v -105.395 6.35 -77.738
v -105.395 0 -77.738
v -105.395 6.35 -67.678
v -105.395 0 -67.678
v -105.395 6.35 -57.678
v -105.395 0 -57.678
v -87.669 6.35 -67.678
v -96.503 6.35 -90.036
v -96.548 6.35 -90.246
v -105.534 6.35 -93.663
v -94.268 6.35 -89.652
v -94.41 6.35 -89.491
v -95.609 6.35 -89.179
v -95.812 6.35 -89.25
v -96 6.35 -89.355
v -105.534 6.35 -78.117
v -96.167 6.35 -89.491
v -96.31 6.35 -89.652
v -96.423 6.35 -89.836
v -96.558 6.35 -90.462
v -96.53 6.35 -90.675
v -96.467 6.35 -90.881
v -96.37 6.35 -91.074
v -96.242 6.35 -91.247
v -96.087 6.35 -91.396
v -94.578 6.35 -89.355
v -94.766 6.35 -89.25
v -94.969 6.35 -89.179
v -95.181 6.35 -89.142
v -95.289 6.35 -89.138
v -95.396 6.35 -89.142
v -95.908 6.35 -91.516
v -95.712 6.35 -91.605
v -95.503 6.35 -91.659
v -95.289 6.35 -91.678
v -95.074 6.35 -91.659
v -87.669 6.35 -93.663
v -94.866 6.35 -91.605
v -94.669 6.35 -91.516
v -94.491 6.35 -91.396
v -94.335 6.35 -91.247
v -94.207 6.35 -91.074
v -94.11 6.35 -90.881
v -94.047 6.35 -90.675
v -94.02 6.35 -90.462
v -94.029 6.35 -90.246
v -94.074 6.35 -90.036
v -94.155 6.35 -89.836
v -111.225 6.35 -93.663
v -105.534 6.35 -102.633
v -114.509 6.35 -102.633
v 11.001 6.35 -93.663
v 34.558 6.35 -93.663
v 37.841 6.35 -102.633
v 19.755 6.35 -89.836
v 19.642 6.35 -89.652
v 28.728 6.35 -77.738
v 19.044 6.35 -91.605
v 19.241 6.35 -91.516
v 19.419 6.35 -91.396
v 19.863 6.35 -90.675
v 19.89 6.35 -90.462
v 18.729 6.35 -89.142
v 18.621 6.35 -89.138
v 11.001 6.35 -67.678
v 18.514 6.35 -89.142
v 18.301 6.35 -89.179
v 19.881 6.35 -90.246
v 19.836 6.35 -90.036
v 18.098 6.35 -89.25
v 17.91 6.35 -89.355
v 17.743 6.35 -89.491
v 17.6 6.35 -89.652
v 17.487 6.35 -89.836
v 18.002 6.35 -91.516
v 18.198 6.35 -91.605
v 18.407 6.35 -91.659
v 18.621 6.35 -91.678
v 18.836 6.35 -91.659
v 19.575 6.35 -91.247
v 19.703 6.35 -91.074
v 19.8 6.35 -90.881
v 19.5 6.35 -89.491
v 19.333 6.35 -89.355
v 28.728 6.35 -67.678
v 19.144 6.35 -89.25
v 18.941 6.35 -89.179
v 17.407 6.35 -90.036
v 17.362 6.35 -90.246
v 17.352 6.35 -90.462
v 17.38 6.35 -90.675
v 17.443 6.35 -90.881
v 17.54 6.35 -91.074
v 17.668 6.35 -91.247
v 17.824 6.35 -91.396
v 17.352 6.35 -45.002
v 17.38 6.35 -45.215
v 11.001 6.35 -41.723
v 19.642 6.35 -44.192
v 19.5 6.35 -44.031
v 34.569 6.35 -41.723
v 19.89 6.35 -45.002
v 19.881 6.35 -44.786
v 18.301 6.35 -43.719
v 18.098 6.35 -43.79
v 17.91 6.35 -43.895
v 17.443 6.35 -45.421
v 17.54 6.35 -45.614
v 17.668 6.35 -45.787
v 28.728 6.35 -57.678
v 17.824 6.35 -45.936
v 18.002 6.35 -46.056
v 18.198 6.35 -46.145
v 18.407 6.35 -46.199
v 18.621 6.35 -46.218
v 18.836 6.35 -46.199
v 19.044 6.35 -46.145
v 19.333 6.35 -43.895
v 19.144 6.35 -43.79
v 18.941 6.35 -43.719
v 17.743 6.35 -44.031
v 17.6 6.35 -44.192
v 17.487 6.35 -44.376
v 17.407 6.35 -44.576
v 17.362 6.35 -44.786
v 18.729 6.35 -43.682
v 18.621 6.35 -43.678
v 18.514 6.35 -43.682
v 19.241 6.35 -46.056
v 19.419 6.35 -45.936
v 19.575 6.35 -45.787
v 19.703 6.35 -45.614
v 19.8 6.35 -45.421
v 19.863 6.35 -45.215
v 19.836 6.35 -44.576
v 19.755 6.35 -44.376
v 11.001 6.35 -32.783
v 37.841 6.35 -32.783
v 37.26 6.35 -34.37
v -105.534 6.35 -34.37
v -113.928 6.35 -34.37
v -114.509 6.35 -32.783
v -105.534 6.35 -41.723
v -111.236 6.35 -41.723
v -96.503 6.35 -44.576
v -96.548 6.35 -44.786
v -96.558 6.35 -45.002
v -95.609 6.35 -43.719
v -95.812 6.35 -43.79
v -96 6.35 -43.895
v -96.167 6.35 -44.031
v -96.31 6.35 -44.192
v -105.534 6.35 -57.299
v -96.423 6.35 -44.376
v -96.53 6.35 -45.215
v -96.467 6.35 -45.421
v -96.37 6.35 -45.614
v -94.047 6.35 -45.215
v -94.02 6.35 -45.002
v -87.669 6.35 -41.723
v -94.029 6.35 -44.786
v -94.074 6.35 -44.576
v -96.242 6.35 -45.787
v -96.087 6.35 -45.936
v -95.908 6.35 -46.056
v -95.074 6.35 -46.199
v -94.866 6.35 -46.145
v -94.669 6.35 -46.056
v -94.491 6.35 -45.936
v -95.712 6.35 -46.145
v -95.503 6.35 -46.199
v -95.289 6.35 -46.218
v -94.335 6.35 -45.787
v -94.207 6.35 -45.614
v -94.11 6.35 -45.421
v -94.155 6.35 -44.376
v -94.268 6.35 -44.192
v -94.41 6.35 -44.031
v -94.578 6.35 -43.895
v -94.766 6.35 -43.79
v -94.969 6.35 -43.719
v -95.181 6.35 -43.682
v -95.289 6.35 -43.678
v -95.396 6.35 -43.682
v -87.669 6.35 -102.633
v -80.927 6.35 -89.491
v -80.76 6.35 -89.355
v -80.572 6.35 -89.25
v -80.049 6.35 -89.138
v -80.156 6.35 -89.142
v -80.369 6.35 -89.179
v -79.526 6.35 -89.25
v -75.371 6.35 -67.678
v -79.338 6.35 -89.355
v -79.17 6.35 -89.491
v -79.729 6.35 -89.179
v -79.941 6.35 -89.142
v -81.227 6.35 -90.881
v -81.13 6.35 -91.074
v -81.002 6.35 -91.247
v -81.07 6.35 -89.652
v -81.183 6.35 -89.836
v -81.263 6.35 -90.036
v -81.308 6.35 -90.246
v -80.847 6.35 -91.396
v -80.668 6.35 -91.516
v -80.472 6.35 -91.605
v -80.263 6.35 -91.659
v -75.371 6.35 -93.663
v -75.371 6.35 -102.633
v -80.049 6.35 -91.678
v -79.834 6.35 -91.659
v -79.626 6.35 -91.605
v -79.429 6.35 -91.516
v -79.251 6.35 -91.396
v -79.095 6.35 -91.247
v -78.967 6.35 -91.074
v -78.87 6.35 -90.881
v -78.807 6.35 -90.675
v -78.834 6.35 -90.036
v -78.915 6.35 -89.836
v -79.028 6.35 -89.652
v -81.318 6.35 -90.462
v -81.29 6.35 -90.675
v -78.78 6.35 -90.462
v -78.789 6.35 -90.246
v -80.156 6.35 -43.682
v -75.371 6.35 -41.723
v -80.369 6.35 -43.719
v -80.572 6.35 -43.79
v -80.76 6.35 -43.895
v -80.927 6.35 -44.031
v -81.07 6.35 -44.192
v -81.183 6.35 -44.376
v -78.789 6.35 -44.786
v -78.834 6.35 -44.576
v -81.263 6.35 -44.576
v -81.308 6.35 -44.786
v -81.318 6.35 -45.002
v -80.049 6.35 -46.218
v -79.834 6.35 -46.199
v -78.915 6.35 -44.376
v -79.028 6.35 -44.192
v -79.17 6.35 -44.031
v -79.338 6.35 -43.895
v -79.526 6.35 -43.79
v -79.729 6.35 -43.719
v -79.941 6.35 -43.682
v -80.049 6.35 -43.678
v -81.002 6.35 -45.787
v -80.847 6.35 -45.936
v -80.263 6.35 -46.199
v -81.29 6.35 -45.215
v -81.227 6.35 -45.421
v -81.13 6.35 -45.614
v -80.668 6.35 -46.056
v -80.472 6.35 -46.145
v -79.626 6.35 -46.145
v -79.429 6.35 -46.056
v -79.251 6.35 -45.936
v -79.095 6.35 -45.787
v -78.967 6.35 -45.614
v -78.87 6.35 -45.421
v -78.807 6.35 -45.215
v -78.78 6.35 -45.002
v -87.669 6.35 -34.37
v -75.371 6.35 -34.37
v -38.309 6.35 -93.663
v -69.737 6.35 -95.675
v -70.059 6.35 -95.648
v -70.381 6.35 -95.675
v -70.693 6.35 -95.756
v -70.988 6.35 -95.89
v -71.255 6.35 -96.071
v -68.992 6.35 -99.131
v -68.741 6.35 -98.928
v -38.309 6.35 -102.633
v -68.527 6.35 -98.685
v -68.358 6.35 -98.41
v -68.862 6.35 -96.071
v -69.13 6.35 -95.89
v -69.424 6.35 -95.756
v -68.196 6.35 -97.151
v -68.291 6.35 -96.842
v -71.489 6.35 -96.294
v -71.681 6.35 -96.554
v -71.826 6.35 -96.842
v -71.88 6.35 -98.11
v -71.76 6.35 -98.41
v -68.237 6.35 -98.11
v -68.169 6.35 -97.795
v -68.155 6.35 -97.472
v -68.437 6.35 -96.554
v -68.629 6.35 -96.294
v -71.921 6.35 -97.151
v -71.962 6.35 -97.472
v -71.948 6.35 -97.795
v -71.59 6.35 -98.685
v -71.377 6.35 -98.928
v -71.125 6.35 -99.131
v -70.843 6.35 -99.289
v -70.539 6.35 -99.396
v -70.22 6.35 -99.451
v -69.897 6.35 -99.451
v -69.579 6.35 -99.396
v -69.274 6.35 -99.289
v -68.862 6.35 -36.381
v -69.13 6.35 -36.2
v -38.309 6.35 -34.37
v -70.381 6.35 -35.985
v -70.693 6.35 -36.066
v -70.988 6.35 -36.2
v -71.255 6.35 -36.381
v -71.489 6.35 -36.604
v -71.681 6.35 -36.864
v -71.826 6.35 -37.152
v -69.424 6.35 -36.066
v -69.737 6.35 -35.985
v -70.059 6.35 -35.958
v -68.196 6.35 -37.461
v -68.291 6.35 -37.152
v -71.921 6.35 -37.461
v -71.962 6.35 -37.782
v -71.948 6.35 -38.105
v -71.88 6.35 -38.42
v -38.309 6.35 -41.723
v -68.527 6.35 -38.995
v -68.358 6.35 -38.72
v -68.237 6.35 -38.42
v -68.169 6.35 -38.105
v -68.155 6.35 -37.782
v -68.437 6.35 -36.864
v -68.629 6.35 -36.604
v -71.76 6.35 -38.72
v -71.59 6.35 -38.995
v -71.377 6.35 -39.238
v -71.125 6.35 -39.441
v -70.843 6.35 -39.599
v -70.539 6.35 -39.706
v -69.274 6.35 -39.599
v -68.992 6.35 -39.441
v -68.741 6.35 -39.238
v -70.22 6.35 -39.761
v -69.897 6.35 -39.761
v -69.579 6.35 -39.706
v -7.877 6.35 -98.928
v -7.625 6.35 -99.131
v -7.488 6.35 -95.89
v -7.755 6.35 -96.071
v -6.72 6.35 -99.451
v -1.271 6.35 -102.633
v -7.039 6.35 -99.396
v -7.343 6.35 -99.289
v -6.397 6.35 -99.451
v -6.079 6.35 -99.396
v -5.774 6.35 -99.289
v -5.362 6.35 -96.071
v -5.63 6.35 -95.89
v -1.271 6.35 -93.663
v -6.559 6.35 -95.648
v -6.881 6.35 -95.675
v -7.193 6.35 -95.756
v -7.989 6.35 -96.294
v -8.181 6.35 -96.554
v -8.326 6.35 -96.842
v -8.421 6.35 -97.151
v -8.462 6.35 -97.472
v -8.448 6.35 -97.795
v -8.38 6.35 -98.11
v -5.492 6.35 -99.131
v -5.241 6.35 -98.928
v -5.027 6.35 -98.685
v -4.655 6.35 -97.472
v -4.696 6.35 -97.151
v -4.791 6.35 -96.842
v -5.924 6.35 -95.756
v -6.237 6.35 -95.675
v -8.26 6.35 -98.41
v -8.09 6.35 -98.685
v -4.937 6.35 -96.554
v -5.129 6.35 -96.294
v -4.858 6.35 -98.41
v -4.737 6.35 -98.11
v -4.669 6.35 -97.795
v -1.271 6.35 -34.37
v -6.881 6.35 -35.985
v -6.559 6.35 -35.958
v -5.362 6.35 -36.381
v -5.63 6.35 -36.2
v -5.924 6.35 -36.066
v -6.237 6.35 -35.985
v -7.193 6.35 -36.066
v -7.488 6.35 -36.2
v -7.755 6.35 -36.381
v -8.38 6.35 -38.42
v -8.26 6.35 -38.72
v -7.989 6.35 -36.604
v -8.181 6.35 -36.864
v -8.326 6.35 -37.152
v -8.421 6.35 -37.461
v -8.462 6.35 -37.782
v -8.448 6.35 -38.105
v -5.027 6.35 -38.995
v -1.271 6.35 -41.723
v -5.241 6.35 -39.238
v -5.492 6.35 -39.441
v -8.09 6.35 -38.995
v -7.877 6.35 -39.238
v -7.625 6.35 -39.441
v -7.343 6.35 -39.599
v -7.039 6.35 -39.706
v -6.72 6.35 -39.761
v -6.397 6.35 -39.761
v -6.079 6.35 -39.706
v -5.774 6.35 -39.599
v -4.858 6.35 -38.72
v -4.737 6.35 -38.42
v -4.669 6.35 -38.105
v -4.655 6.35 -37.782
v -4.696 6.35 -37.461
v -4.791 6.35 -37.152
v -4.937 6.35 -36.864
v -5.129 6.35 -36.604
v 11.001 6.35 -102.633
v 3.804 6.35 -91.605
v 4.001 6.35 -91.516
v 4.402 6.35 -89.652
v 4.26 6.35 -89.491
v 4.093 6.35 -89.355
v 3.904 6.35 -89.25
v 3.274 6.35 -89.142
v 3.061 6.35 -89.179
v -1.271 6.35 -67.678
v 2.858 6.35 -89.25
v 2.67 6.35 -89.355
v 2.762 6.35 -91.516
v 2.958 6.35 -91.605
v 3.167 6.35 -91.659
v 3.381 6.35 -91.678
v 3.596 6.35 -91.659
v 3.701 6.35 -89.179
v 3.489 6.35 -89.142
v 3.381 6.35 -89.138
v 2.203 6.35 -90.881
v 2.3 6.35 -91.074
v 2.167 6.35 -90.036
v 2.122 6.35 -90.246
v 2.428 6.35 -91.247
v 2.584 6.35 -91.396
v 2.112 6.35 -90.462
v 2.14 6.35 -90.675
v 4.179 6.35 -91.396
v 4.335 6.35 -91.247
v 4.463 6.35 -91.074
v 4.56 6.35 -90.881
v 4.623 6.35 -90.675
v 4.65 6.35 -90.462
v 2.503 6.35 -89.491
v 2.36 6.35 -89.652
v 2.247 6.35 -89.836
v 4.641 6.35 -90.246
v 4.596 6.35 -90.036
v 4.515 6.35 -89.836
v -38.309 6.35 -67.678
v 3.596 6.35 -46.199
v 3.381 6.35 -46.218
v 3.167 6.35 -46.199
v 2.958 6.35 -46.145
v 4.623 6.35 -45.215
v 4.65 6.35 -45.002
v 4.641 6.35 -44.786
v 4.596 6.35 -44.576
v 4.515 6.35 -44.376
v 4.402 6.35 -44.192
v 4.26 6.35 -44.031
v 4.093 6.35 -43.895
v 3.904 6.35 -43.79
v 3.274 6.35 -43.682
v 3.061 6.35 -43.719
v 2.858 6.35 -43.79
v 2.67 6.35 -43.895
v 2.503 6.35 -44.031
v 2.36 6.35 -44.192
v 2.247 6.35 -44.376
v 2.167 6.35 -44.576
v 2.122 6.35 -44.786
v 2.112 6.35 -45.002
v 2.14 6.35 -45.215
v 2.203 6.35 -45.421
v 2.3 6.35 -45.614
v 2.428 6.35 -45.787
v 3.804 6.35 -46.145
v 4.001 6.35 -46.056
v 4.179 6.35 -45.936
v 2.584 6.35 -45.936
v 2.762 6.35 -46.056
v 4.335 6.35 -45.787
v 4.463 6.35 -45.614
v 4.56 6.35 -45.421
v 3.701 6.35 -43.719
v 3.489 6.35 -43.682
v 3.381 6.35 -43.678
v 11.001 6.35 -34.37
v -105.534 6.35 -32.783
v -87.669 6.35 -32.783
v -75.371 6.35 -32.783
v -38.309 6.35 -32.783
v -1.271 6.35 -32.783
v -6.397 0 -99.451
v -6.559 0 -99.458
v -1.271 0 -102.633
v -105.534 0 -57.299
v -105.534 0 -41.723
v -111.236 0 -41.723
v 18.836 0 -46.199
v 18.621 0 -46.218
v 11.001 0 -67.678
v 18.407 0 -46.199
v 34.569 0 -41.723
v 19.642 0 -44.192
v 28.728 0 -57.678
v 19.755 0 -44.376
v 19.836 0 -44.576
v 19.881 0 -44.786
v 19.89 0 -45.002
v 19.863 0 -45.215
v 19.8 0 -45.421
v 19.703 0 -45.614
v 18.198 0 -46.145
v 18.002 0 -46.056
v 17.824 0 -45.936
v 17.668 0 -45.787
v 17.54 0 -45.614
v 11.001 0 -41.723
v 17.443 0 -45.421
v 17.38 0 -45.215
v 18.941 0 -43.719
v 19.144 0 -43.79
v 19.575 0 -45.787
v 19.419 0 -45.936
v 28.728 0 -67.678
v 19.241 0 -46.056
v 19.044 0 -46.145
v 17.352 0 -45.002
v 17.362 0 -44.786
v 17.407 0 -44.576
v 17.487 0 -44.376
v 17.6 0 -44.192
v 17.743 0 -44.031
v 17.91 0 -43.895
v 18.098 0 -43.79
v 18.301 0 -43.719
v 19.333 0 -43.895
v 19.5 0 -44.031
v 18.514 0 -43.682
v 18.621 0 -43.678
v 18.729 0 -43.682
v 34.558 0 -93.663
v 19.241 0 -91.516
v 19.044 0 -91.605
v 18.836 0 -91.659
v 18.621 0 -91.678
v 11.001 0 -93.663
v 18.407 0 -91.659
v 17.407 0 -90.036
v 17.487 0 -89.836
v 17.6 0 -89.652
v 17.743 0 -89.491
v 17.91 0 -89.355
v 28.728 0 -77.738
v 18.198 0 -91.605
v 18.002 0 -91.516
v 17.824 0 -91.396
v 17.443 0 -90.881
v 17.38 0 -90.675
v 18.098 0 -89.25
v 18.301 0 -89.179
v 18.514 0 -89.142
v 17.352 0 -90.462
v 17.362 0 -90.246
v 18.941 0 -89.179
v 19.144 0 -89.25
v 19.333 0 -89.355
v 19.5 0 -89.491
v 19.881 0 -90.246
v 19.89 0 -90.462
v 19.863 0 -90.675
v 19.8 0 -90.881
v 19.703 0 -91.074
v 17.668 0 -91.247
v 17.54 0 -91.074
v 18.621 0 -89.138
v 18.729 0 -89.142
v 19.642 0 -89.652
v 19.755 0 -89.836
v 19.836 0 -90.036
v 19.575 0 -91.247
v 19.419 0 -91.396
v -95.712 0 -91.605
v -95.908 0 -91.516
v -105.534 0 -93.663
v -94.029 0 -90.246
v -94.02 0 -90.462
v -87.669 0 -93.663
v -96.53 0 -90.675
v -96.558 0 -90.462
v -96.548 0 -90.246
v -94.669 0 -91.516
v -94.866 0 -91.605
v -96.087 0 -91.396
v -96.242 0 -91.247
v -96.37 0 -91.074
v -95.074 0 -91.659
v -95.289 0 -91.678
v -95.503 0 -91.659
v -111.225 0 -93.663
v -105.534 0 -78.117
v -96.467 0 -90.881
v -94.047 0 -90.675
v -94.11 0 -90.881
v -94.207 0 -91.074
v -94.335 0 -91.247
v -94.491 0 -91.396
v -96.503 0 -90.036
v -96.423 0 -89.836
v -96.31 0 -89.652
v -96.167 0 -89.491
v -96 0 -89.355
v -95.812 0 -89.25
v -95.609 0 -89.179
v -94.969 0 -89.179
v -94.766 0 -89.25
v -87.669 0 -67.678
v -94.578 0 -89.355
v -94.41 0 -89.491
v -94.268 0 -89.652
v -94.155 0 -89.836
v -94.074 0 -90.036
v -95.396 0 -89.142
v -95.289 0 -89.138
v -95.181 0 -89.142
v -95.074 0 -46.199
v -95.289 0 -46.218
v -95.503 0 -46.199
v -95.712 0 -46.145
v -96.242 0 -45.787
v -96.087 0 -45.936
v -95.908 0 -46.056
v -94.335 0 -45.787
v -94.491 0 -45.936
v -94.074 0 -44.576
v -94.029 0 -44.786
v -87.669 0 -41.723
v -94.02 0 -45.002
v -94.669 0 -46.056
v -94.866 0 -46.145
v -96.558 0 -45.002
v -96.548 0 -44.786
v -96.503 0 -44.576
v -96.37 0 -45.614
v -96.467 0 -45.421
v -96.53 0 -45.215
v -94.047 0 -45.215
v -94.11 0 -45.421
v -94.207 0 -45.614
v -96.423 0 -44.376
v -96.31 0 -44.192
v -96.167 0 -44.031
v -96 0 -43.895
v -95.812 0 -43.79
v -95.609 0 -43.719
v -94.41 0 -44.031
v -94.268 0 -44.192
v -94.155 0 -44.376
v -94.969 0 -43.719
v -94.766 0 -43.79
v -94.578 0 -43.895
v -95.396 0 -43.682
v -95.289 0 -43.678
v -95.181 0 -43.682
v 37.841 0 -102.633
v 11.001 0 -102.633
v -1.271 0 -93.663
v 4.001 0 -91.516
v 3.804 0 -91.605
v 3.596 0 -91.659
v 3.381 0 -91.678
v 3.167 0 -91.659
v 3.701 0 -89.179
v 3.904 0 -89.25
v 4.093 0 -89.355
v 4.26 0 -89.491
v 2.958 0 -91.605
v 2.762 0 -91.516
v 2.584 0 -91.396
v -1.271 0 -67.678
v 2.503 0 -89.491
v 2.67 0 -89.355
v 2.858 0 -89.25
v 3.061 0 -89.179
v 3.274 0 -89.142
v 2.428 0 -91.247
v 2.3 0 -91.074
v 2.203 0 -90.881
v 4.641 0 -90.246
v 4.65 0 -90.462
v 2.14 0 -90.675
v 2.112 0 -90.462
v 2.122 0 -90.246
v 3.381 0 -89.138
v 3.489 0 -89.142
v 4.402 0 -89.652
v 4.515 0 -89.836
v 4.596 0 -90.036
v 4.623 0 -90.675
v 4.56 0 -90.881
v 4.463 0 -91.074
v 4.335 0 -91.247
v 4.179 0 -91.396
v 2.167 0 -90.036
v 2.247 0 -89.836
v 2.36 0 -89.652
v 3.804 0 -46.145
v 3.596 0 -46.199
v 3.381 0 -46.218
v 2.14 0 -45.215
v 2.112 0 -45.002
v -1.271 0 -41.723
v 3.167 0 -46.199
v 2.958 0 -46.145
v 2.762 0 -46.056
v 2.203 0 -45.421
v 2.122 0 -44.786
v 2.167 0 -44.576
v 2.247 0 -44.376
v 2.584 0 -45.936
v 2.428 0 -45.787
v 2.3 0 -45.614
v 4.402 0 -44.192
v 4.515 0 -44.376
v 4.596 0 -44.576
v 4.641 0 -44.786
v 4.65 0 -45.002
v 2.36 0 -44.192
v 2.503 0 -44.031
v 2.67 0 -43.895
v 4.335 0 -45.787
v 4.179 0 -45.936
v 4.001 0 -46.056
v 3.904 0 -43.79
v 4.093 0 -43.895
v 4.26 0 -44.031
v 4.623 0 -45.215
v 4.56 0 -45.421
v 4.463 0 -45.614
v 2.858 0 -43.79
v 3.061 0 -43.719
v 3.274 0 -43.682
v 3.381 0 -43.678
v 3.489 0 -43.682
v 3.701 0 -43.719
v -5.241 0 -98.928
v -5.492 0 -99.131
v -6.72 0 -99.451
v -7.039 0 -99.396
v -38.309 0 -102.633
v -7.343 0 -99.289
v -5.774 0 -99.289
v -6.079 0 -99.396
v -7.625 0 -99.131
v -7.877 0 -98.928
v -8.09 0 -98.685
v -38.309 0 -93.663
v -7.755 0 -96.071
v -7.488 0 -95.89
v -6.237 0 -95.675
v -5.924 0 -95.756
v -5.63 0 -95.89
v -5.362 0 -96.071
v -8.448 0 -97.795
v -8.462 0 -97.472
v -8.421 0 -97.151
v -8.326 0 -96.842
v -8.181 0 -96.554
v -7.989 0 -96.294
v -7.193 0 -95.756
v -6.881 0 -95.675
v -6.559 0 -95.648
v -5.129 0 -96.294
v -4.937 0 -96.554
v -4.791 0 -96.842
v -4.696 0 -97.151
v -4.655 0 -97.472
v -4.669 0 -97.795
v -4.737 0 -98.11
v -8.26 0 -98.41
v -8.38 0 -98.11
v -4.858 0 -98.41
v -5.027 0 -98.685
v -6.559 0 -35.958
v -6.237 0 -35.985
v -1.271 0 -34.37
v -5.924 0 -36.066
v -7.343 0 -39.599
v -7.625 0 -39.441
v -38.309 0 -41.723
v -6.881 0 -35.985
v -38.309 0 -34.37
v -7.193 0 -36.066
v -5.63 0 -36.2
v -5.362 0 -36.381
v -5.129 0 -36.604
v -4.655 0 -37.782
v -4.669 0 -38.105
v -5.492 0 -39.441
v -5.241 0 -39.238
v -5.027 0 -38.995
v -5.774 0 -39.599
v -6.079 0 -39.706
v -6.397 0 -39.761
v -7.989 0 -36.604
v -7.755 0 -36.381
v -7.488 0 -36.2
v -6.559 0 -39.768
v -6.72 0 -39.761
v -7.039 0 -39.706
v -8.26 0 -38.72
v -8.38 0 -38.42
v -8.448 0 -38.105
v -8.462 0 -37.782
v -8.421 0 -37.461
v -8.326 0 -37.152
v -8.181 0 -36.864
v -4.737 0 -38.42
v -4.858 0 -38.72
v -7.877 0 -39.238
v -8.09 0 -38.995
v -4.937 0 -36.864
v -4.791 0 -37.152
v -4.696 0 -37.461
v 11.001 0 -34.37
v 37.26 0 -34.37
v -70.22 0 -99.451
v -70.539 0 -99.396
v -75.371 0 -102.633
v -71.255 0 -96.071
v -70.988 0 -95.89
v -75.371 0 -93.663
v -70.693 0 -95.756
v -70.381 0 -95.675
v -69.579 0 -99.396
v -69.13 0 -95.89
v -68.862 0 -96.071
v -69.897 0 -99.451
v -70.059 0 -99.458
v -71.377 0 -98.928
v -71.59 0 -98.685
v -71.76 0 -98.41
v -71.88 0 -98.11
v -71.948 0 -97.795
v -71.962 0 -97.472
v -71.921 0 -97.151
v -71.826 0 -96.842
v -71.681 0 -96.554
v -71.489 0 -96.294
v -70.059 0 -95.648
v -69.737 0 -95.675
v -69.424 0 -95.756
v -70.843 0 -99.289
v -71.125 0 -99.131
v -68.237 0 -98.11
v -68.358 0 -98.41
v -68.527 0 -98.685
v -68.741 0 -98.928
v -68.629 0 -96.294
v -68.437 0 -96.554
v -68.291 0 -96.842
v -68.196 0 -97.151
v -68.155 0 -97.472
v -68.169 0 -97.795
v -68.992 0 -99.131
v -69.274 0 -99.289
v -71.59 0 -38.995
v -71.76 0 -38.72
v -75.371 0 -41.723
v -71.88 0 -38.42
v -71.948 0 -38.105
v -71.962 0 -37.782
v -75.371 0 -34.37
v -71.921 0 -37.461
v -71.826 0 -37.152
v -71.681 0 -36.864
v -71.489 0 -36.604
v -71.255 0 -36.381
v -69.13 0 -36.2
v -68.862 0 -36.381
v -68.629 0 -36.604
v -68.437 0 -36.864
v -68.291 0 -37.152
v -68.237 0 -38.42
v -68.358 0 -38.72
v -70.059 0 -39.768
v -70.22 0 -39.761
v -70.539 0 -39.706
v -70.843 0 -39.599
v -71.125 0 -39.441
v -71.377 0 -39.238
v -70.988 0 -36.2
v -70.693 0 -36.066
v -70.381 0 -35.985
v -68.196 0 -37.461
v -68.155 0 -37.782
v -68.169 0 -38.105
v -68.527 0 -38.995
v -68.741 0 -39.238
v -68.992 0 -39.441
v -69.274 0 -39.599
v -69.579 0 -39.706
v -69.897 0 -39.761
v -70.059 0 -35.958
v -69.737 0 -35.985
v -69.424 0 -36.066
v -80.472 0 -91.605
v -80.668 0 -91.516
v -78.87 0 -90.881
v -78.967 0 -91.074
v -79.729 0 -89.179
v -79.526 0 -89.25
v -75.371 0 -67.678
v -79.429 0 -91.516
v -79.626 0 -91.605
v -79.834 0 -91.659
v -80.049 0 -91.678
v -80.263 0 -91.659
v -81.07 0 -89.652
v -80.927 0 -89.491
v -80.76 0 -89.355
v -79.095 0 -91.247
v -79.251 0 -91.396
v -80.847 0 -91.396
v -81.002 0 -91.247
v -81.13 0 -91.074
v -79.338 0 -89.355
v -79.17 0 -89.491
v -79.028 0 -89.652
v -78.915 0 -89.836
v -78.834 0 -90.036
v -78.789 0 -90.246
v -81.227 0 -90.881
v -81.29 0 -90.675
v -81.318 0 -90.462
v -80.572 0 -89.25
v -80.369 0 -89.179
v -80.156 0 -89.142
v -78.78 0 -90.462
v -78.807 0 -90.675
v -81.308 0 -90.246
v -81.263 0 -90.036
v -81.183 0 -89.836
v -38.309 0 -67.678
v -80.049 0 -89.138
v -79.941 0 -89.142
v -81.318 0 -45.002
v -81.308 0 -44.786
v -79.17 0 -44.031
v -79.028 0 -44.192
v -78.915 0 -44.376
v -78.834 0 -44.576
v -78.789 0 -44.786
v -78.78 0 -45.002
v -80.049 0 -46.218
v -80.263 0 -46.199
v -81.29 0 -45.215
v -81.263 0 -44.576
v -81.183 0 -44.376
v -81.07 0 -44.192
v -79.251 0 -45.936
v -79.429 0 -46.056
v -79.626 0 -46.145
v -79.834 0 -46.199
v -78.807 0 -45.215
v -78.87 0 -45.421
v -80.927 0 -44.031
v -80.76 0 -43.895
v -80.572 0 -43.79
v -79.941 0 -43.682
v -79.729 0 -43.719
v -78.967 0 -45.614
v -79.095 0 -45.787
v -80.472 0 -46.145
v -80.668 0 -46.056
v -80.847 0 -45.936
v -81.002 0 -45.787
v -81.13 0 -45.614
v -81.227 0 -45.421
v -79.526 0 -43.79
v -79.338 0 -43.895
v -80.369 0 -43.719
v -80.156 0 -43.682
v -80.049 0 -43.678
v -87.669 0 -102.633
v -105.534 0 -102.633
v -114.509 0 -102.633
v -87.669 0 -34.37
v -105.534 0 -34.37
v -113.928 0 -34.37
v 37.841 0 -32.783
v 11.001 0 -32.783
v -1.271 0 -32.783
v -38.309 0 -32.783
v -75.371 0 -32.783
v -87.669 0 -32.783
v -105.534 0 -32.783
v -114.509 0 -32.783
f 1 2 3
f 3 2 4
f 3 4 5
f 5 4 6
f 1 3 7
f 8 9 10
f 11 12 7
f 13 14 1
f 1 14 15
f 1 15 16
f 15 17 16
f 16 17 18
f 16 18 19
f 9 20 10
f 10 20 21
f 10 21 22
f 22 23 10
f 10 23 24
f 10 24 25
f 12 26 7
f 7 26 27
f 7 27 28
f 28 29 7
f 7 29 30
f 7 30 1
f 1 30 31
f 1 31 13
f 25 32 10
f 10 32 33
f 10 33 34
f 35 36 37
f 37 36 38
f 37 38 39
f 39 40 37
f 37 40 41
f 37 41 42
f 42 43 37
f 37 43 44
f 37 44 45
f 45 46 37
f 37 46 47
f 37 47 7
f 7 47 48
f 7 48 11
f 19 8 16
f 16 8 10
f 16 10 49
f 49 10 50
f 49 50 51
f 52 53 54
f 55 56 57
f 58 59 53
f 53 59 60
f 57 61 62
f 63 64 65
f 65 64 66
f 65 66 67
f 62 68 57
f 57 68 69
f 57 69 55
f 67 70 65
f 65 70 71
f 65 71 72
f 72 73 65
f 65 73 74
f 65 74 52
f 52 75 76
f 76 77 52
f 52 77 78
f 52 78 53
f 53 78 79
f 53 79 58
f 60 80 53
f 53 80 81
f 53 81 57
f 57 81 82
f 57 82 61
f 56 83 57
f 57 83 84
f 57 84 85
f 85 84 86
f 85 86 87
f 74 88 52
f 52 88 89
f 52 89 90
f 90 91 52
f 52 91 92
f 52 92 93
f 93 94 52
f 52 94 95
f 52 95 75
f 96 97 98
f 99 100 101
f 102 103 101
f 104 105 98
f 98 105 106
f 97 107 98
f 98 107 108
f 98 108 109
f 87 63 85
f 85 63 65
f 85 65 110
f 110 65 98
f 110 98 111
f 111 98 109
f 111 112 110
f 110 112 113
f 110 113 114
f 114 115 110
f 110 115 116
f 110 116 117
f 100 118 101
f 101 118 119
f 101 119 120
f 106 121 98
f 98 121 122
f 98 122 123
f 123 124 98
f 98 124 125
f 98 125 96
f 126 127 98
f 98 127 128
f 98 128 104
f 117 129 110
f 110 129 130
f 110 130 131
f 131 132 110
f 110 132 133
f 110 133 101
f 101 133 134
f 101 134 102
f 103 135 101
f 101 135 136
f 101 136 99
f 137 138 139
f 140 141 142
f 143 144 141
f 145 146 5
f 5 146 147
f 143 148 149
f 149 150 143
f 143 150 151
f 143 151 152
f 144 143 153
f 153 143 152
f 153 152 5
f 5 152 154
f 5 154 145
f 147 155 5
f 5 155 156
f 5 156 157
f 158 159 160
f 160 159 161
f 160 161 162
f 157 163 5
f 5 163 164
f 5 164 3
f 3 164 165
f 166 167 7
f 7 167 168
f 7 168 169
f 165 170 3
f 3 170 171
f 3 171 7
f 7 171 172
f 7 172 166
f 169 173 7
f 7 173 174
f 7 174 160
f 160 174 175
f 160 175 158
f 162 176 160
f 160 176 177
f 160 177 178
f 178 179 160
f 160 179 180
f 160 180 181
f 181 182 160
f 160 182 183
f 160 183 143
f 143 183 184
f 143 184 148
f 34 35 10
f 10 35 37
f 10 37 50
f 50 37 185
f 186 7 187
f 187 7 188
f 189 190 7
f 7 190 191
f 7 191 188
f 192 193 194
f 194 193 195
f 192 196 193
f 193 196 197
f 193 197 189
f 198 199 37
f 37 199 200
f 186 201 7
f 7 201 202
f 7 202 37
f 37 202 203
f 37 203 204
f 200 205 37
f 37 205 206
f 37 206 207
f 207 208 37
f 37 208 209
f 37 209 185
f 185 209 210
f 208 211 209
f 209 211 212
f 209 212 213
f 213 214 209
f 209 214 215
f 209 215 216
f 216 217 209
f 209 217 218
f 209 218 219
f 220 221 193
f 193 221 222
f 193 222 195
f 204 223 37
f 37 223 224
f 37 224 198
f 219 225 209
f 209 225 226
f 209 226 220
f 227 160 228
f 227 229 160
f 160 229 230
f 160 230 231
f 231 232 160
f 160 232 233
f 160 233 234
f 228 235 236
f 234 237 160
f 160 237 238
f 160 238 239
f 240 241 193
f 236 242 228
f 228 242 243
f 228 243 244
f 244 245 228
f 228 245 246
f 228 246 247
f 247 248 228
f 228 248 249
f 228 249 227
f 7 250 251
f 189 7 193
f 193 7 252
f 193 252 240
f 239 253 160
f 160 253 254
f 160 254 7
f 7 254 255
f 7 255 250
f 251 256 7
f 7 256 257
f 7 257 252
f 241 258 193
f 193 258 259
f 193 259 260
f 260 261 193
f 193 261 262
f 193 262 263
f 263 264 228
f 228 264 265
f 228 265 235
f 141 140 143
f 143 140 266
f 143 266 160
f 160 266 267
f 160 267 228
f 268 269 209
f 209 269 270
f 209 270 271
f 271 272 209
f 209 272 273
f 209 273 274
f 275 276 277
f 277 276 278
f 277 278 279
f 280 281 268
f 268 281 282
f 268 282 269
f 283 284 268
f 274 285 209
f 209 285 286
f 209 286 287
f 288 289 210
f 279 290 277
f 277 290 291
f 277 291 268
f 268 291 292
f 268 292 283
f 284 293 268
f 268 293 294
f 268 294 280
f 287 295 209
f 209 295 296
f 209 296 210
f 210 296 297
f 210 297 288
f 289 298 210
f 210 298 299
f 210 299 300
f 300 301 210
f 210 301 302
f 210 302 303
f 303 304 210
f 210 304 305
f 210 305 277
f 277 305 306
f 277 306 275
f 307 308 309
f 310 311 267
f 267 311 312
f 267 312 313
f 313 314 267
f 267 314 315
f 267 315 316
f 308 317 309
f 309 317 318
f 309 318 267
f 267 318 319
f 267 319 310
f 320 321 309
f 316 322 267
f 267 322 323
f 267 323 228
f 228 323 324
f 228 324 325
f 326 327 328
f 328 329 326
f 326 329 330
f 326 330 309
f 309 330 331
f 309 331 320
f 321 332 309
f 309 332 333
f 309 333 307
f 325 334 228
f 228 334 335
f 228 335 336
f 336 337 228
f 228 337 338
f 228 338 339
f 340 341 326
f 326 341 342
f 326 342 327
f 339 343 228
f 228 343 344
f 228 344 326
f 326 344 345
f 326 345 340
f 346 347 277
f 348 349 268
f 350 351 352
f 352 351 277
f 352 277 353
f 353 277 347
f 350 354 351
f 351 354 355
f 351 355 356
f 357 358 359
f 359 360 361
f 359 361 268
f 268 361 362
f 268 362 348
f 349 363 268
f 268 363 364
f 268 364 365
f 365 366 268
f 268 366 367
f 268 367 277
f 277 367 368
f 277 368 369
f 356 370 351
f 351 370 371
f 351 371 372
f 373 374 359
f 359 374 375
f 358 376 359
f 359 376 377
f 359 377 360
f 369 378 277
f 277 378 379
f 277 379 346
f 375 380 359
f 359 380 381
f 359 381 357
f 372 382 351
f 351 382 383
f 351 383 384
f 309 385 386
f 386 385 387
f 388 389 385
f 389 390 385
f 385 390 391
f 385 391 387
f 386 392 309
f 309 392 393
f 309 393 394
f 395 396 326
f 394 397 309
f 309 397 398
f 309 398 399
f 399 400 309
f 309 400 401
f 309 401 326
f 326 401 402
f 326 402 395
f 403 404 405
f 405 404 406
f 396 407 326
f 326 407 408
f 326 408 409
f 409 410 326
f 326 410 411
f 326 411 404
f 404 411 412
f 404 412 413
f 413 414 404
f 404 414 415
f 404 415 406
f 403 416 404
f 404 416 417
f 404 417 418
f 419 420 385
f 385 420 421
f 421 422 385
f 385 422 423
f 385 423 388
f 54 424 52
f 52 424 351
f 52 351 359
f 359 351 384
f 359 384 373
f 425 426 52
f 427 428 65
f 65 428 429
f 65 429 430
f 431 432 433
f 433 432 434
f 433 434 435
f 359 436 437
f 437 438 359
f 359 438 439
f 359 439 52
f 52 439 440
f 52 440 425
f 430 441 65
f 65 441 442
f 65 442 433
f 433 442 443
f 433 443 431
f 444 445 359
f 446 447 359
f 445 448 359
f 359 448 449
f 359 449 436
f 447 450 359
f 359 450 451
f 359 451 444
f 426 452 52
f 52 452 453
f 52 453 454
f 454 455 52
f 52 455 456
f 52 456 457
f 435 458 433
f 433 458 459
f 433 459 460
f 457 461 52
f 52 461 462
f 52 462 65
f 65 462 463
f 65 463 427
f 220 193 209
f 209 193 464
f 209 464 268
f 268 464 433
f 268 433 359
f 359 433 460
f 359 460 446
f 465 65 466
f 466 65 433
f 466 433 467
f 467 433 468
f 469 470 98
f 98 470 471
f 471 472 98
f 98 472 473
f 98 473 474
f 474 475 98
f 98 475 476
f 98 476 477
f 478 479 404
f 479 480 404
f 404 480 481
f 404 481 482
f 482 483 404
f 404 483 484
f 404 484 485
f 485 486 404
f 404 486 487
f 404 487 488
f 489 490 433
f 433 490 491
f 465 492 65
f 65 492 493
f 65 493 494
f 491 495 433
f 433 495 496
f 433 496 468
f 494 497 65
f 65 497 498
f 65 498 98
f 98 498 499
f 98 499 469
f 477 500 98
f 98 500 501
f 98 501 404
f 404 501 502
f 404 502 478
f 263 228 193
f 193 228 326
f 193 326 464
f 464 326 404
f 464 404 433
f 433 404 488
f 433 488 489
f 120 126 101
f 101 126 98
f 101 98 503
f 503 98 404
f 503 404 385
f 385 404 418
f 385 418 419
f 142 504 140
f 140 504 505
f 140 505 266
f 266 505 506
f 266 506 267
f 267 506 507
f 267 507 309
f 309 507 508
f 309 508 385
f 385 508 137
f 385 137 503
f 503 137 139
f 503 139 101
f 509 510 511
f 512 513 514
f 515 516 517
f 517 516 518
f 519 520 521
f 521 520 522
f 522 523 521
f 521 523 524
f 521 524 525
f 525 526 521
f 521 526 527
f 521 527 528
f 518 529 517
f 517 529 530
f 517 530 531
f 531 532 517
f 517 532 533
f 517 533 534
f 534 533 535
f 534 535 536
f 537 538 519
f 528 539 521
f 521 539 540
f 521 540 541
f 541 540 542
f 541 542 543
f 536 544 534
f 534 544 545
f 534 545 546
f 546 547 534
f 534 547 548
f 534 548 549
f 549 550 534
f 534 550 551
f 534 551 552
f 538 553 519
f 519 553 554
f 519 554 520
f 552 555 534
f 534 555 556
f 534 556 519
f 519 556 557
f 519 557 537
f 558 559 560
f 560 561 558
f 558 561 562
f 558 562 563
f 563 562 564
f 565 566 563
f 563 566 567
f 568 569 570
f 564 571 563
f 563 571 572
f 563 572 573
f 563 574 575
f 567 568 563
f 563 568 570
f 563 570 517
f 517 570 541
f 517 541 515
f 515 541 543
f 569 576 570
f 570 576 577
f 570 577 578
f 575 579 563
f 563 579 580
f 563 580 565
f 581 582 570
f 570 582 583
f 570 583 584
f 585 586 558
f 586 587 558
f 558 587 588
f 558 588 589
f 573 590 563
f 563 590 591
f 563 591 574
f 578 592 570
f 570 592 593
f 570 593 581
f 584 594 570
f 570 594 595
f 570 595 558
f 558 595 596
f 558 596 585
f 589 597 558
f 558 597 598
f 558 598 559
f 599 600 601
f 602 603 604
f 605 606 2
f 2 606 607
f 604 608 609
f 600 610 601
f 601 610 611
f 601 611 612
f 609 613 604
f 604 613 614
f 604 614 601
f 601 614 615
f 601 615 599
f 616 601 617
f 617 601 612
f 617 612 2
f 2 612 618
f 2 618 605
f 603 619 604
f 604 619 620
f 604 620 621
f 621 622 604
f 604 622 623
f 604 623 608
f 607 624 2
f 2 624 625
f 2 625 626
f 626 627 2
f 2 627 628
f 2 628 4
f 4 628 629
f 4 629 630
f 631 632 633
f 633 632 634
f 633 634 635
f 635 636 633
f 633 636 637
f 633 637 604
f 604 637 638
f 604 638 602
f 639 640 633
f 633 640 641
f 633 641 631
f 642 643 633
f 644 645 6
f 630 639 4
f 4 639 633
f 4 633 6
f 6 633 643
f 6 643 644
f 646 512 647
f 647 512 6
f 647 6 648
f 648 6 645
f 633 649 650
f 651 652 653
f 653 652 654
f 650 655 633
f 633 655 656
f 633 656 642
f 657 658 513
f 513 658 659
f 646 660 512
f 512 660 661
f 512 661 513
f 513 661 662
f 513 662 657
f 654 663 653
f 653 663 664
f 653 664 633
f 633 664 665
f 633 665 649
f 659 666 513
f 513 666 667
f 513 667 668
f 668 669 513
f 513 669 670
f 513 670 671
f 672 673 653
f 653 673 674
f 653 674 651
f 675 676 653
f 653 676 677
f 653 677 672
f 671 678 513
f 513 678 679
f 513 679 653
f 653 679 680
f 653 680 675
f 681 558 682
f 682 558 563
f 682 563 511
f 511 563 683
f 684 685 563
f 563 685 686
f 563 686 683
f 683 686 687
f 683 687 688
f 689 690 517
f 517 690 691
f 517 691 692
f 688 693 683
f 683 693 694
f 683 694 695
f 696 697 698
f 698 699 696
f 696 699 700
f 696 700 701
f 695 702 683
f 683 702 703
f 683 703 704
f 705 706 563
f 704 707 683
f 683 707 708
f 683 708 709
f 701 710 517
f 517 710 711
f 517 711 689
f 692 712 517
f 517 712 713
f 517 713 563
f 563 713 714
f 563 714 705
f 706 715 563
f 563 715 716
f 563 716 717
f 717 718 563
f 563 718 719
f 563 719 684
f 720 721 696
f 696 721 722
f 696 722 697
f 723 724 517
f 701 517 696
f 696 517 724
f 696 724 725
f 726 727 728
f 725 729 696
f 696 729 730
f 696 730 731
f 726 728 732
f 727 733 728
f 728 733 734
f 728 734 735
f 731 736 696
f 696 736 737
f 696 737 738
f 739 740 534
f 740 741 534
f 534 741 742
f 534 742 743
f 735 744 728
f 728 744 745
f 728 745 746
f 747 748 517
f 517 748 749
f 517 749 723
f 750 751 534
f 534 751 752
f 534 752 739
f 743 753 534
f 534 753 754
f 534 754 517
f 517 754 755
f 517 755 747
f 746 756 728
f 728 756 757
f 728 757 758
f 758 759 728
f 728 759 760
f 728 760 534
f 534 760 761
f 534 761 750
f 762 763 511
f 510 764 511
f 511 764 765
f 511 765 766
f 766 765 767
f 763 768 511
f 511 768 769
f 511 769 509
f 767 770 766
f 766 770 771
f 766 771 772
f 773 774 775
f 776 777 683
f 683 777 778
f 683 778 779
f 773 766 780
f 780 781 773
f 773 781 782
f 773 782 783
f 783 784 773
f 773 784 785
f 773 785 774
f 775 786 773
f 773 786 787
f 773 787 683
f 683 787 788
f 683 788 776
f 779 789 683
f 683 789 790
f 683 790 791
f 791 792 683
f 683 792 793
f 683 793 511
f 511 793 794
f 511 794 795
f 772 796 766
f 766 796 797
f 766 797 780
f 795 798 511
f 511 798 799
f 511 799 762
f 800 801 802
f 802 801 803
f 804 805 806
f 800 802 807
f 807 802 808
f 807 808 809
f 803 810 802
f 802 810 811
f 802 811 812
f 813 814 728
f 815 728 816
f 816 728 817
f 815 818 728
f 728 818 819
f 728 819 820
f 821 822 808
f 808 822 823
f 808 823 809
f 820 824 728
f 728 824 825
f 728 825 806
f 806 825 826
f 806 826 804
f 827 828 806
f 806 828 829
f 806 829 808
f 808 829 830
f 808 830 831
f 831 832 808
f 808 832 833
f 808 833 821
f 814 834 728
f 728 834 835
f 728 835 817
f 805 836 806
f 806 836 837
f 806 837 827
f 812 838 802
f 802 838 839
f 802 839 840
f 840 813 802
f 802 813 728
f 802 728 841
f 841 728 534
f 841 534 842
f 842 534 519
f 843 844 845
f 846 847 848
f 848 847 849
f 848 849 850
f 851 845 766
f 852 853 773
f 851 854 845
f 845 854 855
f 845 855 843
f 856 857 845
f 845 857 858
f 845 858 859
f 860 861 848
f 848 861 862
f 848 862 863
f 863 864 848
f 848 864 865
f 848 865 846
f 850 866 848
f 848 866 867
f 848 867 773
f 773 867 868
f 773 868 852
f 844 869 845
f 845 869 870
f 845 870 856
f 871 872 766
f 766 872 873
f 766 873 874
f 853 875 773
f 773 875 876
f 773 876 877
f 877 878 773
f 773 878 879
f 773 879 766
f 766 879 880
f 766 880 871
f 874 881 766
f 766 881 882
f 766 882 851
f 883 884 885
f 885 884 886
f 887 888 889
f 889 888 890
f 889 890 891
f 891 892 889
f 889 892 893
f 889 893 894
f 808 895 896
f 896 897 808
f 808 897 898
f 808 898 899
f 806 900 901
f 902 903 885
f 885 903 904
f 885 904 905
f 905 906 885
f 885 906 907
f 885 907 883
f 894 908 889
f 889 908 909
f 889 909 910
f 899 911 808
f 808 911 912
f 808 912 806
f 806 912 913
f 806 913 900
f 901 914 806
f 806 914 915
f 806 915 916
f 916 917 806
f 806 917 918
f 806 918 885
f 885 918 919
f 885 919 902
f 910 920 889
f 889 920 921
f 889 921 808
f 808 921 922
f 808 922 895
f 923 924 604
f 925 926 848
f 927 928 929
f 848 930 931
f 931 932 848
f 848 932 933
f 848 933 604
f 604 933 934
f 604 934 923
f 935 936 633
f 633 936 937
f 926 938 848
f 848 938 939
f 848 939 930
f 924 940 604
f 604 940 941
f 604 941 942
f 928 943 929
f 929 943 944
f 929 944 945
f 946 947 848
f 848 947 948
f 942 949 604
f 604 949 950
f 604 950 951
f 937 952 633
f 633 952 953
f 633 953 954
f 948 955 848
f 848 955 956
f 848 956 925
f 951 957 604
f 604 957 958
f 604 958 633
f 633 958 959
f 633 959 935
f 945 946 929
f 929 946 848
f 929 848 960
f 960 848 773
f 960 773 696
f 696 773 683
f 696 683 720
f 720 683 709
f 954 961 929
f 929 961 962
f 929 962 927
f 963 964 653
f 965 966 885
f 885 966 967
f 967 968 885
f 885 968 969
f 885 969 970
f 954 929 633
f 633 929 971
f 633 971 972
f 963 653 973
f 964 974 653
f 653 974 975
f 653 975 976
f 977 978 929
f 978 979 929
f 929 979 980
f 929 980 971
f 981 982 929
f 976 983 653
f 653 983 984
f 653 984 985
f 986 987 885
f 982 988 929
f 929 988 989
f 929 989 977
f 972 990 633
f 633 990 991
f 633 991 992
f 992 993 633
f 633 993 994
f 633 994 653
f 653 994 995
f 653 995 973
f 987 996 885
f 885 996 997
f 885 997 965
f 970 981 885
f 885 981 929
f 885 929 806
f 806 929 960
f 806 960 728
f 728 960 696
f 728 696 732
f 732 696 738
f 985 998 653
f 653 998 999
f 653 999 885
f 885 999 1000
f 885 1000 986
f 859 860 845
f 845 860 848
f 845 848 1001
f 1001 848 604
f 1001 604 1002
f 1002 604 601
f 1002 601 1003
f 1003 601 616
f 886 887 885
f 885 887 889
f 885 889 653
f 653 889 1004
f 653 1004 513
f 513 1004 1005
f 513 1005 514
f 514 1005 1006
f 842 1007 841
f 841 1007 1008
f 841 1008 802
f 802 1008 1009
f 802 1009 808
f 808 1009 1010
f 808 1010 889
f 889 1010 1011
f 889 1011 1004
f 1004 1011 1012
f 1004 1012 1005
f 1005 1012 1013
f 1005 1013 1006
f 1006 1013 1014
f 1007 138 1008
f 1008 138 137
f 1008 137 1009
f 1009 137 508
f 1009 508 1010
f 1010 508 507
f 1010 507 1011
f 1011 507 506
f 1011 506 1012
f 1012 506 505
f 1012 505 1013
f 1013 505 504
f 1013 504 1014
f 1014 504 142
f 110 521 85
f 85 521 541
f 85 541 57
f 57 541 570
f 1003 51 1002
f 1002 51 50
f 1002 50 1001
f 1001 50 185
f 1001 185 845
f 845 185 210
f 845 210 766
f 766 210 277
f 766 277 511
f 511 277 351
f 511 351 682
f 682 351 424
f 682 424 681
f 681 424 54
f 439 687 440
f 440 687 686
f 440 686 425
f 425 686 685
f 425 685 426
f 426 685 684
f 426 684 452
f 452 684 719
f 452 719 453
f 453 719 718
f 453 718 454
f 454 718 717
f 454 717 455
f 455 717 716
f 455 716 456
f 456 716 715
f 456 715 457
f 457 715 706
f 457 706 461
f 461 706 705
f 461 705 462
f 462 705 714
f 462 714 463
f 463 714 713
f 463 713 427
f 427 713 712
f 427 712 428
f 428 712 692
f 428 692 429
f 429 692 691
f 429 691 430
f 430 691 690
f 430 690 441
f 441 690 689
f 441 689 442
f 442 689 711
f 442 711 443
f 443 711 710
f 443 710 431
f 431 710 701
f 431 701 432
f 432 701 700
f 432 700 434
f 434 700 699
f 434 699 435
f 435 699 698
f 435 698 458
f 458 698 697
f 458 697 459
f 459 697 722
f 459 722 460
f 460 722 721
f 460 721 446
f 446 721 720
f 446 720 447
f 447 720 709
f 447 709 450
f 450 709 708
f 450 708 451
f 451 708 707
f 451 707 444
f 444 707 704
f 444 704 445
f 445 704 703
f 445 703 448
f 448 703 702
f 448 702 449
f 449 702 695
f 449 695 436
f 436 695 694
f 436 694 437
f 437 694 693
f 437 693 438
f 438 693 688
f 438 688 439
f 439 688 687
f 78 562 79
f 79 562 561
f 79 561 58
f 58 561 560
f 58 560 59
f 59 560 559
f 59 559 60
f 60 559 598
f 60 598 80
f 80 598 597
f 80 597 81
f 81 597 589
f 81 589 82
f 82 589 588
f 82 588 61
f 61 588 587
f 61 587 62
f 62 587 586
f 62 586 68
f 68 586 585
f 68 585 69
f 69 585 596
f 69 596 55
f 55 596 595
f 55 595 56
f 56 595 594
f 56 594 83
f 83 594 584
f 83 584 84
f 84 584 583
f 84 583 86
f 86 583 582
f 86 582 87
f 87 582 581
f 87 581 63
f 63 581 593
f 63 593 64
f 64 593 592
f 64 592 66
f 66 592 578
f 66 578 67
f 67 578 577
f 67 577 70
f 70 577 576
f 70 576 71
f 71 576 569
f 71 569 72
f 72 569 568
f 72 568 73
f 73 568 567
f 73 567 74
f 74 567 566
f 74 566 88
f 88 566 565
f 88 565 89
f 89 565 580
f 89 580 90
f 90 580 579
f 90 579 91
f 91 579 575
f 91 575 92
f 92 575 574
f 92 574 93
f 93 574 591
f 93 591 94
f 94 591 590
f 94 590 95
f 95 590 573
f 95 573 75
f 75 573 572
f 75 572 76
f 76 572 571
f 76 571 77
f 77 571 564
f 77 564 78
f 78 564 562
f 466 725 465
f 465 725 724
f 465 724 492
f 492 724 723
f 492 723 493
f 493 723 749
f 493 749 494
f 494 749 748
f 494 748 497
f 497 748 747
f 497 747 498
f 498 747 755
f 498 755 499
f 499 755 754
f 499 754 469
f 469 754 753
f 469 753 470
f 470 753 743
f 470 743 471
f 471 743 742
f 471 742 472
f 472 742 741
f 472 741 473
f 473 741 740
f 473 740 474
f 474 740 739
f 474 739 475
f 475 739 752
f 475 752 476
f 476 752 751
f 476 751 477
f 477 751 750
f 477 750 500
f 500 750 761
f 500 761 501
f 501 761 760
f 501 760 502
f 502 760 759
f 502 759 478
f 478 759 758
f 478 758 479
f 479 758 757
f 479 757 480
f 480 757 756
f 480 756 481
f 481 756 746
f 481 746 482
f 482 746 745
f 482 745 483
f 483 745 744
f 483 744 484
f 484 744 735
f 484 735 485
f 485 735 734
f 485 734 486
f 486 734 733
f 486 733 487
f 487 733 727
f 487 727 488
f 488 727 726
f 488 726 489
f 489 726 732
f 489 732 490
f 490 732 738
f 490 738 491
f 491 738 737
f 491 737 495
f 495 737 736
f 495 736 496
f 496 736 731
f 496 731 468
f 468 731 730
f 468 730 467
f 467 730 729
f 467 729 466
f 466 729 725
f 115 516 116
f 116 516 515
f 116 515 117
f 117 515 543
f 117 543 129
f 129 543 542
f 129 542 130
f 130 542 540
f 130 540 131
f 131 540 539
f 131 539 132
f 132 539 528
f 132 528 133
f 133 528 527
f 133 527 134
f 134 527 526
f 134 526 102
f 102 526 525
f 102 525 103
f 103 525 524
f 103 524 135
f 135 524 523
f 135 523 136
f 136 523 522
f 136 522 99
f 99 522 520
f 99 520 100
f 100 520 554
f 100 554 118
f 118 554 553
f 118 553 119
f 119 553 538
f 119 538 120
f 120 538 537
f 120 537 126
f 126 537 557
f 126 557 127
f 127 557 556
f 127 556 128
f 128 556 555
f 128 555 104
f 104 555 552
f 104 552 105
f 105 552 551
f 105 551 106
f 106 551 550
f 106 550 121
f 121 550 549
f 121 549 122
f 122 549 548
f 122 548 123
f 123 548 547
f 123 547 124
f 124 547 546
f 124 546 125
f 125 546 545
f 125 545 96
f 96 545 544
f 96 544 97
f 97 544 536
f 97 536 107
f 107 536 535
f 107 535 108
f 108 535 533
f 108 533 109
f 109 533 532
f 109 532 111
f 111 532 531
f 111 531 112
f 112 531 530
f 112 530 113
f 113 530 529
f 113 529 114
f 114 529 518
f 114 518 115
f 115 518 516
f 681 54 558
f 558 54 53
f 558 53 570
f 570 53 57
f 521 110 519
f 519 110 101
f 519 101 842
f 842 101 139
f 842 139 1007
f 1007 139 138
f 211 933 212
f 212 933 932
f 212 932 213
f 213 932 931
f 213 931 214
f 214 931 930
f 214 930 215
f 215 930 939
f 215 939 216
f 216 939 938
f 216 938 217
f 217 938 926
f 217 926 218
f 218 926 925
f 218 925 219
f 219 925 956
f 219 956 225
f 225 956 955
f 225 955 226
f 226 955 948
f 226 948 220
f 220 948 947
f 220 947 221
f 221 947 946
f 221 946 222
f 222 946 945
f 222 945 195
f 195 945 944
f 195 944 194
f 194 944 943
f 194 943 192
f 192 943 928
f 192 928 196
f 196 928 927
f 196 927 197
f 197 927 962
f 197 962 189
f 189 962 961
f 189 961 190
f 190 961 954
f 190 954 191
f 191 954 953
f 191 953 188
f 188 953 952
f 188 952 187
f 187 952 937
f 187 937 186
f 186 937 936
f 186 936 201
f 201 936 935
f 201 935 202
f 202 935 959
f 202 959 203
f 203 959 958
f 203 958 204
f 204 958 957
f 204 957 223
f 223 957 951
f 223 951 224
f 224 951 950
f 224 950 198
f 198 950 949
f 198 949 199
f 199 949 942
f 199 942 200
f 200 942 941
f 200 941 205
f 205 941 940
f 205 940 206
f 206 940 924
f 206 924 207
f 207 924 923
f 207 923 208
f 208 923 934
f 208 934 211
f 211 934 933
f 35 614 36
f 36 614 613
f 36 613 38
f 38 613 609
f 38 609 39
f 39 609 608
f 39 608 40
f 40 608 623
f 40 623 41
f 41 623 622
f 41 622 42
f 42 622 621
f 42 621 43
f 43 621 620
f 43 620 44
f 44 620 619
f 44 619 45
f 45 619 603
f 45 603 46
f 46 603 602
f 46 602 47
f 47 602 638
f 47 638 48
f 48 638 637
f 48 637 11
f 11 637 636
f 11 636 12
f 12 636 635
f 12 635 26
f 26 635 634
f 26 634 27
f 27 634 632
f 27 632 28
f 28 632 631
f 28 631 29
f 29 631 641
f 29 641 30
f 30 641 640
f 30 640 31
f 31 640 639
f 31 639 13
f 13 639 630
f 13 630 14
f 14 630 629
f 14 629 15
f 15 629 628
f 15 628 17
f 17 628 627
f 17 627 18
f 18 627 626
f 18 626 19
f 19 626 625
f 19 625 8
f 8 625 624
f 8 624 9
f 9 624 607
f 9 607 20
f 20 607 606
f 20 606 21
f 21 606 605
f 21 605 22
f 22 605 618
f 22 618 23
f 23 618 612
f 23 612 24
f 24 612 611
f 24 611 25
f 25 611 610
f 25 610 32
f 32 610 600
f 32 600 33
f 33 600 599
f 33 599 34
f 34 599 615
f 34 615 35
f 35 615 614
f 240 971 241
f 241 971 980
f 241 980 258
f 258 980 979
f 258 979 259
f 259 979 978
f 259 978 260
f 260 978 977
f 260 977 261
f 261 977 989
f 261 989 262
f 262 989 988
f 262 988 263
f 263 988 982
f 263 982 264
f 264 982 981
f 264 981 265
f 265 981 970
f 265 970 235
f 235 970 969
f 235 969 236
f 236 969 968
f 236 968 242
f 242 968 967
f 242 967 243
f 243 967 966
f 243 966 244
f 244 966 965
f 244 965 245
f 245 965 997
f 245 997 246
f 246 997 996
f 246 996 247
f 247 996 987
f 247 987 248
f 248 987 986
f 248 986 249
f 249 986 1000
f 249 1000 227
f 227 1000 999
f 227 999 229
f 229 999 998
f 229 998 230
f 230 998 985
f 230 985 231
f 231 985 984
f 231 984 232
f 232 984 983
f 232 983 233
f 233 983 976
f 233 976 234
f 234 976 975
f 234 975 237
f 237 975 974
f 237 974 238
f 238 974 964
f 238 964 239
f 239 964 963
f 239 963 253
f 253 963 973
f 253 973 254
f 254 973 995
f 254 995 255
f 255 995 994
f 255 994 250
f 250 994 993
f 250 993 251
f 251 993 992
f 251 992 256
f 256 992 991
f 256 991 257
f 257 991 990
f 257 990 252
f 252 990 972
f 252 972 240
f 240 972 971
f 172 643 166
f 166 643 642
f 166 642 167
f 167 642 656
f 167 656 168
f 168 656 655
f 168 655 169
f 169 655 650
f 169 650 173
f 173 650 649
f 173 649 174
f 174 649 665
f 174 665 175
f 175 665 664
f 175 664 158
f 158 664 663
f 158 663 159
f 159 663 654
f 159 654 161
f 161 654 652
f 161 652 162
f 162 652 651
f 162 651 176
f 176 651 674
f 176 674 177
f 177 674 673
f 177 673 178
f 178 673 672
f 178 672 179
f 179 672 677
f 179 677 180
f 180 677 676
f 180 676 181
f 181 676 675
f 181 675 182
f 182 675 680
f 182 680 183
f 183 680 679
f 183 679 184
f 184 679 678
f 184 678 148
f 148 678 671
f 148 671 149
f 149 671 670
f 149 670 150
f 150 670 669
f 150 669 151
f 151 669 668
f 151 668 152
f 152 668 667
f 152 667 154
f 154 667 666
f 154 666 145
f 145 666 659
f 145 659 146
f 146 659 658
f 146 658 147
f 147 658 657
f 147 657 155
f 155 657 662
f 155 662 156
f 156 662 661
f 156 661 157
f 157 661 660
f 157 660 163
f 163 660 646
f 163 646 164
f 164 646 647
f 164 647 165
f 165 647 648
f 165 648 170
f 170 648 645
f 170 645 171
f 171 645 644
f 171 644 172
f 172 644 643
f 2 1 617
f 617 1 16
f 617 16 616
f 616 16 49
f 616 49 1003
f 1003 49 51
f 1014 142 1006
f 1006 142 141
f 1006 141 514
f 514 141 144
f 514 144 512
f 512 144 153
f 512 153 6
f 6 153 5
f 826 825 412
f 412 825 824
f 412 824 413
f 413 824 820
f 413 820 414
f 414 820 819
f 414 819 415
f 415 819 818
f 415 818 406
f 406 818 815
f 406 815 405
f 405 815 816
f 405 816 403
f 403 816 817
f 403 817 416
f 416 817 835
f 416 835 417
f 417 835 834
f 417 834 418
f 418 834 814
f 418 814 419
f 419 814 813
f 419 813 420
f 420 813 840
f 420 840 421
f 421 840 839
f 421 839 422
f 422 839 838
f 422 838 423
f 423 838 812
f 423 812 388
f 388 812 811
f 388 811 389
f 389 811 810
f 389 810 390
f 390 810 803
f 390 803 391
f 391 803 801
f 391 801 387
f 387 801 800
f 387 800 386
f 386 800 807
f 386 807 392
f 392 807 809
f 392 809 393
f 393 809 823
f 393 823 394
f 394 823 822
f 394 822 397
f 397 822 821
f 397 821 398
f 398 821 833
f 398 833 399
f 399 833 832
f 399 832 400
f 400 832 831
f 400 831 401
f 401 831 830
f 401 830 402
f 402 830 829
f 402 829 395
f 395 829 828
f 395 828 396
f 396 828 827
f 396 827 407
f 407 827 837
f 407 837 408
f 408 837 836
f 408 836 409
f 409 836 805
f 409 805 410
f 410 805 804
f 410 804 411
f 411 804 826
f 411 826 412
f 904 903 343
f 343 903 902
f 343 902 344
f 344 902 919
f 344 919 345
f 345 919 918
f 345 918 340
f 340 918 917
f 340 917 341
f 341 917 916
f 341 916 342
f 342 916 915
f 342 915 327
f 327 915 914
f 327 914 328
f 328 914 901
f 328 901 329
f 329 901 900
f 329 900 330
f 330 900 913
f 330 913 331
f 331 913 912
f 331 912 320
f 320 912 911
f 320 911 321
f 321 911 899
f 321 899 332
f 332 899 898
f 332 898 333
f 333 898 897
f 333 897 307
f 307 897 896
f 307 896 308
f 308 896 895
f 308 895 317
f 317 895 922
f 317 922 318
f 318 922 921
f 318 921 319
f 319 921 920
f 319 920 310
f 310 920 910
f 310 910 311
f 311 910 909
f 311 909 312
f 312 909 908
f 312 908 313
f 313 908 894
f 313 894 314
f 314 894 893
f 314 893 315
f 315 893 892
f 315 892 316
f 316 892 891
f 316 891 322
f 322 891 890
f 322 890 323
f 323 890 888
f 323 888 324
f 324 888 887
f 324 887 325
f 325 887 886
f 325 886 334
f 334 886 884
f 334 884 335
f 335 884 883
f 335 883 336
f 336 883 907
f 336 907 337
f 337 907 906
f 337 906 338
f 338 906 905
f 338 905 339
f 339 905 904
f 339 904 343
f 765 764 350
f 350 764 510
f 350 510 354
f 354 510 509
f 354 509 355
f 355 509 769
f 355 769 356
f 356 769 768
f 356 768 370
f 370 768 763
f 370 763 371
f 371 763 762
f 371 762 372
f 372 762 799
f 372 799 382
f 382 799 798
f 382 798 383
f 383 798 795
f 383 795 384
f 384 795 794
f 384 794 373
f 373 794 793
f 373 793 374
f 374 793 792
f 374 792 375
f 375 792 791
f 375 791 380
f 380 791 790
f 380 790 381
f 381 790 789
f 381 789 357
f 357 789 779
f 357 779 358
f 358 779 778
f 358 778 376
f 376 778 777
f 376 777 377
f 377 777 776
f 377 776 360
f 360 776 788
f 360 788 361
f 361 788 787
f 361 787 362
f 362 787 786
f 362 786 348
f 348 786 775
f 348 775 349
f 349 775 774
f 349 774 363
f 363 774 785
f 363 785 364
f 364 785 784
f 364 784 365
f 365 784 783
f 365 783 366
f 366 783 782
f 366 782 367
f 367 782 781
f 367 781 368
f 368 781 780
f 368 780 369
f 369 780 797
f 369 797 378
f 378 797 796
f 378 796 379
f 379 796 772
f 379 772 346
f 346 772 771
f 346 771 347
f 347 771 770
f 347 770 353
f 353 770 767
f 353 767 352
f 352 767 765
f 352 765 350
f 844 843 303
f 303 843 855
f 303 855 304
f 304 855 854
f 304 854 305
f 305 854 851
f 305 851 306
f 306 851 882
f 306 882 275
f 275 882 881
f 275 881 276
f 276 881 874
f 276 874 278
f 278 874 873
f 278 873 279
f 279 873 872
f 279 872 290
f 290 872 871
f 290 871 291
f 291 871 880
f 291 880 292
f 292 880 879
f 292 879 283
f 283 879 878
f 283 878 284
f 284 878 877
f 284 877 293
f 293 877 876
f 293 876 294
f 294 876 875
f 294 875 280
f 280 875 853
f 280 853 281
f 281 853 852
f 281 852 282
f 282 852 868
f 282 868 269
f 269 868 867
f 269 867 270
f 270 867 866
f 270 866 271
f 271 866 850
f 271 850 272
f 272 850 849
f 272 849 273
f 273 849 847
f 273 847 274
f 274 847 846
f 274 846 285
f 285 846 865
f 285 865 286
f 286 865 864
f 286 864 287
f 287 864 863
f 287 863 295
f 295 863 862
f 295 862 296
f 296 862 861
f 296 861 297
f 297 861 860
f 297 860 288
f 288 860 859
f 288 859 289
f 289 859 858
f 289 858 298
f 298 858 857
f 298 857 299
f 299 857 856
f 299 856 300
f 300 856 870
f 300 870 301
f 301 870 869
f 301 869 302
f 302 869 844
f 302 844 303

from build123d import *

# Parameters (mm, degrees)
SKETCH1_W           = 67.061286962
SKETCH1_H           = 69.85
SKETCH1_R           = 1.27
BOSS_EXTRUDE1_DEPTH = 6.35
SKETCH2_W           = 20.976278342
SKETCH2_H           = 20.060000012
BOSS_EXTRUDE2_DEPTH = 12.7
BOSS_EXTRUDE3_DEPTH = 6.35
SKETCH4_W           = 170.998259203
SKETCH4_H           = 17.997071231
CUT_EXTRUDE1_DEPTH  = 70.85
SKETCH8_R           = 1.905
CUT_EXTRUDE3_DEPTH  = 13.716


with BuildPart() as part:
    # Sketch1 → Boss-Extrude1 (new body)
    with BuildSketch(Plane(origin=(0, 0, 0), x_dir=(1, 0, 0), z_dir=(0, 1, 0))):
        with Locations((-4.803022, 67.707661351)):
            Rectangle(SKETCH1_W, SKETCH1_H)
        with Locations((3.381343157, 90.407661351)):
            Circle(SKETCH1_R, mode=Mode.SUBTRACT)
        with Locations((18.621343157, 90.407661351)):
            Circle(SKETCH1_R, mode=Mode.SUBTRACT)
        with Locations((3.381343157, 44.947661351)):
            Circle(SKETCH1_R, mode=Mode.SUBTRACT)
        with Locations((18.621343157, 44.947661351)):
            Circle(SKETCH1_R, mode=Mode.SUBTRACT)
    boss_extrude1 = extrude(amount=BOSS_EXTRUDE1_DEPTH)

    # Sketch2 → Boss-Extrude2 (add)
    with BuildSketch(Plane(origin=(0, 6.35, 0), x_dir=(1, 0, 0), z_dir=(0, 1, 0))):
        with Locations((18.23948231, 67.707661351)):
            Rectangle(SKETCH2_W, SKETCH2_H)
    boss_extrude2 = extrude(amount=BOSS_EXTRUDE2_DEPTH)

    # Sketch3 → Boss-Extrude3 (add)
    with BuildSketch(Plane(origin=(0, 6.35, 0), x_dir=(1, 0, 0), z_dir=(0, 1, 0))):
        Polygon((37.841343157, 102.632661351), (28.727621481, 77.737661357), (28.727621481, 102.632661351), align=None)
        Polygon((28.727621481, 57.677661345), (37.841343157, 32.782661351), (28.727621481, 32.782661351), align=None)
    boss_extrude3 = extrude(amount=-BOSS_EXTRUDE3_DEPTH)

    # Mirror2: Boss-Extrude1, Boss-Extrude2, Boss-Extrude3 across plane
    add(boss_extrude1.mirror(Plane(origin=(-38.333665481, 6.35, -32.782661351), x_dir=(0, 0, 1), z_dir=(1, 0, 0))))
    add(boss_extrude2.mirror(Plane(origin=(-38.333665481, 6.35, -32.782661351), x_dir=(0, 0, 1), z_dir=(1, 0, 0))))
    add(boss_extrude3.mirror(Plane(origin=(-38.333665481, 6.35, -32.782661351), x_dir=(0, 0, 1), z_dir=(1, 0, 0))))

    # Sketch4 → Cut-Extrude1 (cut, through all)
    with BuildSketch(Plane.XY.offset(-32.782661351)):
        with Locations((-47.657786445, 15.348535616)):
            Rectangle(SKETCH4_W, SKETCH4_H)
    extrude(amount=-CUT_EXTRUDE1_DEPTH, mode=Mode.SUBTRACT)

    # Sketch8 → Cut-Extrude3 (cut)
    with BuildSketch(Plane(origin=(0, 6.35, 0), x_dir=(1, 0, 0), z_dir=(0, 1, 0))):
        with Locations((-6.558674119, 97.552661351)):
            Circle(SKETCH8_R)
        with Locations((-6.558674119, 37.862661351)):
            Circle(SKETCH8_R)
        with Locations((-171.91881552, 187.895953706)):
            Circle(SKETCH8_R)
        with Locations((-70.058674119, 97.552661351)):
            Circle(SKETCH8_R)
        with Locations((-70.058674119, 37.862661351)):
            Circle(SKETCH8_R)
    extrude(amount=-CUT_EXTRUDE3_DEPTH, mode=Mode.SUBTRACT)


solid = part.part
